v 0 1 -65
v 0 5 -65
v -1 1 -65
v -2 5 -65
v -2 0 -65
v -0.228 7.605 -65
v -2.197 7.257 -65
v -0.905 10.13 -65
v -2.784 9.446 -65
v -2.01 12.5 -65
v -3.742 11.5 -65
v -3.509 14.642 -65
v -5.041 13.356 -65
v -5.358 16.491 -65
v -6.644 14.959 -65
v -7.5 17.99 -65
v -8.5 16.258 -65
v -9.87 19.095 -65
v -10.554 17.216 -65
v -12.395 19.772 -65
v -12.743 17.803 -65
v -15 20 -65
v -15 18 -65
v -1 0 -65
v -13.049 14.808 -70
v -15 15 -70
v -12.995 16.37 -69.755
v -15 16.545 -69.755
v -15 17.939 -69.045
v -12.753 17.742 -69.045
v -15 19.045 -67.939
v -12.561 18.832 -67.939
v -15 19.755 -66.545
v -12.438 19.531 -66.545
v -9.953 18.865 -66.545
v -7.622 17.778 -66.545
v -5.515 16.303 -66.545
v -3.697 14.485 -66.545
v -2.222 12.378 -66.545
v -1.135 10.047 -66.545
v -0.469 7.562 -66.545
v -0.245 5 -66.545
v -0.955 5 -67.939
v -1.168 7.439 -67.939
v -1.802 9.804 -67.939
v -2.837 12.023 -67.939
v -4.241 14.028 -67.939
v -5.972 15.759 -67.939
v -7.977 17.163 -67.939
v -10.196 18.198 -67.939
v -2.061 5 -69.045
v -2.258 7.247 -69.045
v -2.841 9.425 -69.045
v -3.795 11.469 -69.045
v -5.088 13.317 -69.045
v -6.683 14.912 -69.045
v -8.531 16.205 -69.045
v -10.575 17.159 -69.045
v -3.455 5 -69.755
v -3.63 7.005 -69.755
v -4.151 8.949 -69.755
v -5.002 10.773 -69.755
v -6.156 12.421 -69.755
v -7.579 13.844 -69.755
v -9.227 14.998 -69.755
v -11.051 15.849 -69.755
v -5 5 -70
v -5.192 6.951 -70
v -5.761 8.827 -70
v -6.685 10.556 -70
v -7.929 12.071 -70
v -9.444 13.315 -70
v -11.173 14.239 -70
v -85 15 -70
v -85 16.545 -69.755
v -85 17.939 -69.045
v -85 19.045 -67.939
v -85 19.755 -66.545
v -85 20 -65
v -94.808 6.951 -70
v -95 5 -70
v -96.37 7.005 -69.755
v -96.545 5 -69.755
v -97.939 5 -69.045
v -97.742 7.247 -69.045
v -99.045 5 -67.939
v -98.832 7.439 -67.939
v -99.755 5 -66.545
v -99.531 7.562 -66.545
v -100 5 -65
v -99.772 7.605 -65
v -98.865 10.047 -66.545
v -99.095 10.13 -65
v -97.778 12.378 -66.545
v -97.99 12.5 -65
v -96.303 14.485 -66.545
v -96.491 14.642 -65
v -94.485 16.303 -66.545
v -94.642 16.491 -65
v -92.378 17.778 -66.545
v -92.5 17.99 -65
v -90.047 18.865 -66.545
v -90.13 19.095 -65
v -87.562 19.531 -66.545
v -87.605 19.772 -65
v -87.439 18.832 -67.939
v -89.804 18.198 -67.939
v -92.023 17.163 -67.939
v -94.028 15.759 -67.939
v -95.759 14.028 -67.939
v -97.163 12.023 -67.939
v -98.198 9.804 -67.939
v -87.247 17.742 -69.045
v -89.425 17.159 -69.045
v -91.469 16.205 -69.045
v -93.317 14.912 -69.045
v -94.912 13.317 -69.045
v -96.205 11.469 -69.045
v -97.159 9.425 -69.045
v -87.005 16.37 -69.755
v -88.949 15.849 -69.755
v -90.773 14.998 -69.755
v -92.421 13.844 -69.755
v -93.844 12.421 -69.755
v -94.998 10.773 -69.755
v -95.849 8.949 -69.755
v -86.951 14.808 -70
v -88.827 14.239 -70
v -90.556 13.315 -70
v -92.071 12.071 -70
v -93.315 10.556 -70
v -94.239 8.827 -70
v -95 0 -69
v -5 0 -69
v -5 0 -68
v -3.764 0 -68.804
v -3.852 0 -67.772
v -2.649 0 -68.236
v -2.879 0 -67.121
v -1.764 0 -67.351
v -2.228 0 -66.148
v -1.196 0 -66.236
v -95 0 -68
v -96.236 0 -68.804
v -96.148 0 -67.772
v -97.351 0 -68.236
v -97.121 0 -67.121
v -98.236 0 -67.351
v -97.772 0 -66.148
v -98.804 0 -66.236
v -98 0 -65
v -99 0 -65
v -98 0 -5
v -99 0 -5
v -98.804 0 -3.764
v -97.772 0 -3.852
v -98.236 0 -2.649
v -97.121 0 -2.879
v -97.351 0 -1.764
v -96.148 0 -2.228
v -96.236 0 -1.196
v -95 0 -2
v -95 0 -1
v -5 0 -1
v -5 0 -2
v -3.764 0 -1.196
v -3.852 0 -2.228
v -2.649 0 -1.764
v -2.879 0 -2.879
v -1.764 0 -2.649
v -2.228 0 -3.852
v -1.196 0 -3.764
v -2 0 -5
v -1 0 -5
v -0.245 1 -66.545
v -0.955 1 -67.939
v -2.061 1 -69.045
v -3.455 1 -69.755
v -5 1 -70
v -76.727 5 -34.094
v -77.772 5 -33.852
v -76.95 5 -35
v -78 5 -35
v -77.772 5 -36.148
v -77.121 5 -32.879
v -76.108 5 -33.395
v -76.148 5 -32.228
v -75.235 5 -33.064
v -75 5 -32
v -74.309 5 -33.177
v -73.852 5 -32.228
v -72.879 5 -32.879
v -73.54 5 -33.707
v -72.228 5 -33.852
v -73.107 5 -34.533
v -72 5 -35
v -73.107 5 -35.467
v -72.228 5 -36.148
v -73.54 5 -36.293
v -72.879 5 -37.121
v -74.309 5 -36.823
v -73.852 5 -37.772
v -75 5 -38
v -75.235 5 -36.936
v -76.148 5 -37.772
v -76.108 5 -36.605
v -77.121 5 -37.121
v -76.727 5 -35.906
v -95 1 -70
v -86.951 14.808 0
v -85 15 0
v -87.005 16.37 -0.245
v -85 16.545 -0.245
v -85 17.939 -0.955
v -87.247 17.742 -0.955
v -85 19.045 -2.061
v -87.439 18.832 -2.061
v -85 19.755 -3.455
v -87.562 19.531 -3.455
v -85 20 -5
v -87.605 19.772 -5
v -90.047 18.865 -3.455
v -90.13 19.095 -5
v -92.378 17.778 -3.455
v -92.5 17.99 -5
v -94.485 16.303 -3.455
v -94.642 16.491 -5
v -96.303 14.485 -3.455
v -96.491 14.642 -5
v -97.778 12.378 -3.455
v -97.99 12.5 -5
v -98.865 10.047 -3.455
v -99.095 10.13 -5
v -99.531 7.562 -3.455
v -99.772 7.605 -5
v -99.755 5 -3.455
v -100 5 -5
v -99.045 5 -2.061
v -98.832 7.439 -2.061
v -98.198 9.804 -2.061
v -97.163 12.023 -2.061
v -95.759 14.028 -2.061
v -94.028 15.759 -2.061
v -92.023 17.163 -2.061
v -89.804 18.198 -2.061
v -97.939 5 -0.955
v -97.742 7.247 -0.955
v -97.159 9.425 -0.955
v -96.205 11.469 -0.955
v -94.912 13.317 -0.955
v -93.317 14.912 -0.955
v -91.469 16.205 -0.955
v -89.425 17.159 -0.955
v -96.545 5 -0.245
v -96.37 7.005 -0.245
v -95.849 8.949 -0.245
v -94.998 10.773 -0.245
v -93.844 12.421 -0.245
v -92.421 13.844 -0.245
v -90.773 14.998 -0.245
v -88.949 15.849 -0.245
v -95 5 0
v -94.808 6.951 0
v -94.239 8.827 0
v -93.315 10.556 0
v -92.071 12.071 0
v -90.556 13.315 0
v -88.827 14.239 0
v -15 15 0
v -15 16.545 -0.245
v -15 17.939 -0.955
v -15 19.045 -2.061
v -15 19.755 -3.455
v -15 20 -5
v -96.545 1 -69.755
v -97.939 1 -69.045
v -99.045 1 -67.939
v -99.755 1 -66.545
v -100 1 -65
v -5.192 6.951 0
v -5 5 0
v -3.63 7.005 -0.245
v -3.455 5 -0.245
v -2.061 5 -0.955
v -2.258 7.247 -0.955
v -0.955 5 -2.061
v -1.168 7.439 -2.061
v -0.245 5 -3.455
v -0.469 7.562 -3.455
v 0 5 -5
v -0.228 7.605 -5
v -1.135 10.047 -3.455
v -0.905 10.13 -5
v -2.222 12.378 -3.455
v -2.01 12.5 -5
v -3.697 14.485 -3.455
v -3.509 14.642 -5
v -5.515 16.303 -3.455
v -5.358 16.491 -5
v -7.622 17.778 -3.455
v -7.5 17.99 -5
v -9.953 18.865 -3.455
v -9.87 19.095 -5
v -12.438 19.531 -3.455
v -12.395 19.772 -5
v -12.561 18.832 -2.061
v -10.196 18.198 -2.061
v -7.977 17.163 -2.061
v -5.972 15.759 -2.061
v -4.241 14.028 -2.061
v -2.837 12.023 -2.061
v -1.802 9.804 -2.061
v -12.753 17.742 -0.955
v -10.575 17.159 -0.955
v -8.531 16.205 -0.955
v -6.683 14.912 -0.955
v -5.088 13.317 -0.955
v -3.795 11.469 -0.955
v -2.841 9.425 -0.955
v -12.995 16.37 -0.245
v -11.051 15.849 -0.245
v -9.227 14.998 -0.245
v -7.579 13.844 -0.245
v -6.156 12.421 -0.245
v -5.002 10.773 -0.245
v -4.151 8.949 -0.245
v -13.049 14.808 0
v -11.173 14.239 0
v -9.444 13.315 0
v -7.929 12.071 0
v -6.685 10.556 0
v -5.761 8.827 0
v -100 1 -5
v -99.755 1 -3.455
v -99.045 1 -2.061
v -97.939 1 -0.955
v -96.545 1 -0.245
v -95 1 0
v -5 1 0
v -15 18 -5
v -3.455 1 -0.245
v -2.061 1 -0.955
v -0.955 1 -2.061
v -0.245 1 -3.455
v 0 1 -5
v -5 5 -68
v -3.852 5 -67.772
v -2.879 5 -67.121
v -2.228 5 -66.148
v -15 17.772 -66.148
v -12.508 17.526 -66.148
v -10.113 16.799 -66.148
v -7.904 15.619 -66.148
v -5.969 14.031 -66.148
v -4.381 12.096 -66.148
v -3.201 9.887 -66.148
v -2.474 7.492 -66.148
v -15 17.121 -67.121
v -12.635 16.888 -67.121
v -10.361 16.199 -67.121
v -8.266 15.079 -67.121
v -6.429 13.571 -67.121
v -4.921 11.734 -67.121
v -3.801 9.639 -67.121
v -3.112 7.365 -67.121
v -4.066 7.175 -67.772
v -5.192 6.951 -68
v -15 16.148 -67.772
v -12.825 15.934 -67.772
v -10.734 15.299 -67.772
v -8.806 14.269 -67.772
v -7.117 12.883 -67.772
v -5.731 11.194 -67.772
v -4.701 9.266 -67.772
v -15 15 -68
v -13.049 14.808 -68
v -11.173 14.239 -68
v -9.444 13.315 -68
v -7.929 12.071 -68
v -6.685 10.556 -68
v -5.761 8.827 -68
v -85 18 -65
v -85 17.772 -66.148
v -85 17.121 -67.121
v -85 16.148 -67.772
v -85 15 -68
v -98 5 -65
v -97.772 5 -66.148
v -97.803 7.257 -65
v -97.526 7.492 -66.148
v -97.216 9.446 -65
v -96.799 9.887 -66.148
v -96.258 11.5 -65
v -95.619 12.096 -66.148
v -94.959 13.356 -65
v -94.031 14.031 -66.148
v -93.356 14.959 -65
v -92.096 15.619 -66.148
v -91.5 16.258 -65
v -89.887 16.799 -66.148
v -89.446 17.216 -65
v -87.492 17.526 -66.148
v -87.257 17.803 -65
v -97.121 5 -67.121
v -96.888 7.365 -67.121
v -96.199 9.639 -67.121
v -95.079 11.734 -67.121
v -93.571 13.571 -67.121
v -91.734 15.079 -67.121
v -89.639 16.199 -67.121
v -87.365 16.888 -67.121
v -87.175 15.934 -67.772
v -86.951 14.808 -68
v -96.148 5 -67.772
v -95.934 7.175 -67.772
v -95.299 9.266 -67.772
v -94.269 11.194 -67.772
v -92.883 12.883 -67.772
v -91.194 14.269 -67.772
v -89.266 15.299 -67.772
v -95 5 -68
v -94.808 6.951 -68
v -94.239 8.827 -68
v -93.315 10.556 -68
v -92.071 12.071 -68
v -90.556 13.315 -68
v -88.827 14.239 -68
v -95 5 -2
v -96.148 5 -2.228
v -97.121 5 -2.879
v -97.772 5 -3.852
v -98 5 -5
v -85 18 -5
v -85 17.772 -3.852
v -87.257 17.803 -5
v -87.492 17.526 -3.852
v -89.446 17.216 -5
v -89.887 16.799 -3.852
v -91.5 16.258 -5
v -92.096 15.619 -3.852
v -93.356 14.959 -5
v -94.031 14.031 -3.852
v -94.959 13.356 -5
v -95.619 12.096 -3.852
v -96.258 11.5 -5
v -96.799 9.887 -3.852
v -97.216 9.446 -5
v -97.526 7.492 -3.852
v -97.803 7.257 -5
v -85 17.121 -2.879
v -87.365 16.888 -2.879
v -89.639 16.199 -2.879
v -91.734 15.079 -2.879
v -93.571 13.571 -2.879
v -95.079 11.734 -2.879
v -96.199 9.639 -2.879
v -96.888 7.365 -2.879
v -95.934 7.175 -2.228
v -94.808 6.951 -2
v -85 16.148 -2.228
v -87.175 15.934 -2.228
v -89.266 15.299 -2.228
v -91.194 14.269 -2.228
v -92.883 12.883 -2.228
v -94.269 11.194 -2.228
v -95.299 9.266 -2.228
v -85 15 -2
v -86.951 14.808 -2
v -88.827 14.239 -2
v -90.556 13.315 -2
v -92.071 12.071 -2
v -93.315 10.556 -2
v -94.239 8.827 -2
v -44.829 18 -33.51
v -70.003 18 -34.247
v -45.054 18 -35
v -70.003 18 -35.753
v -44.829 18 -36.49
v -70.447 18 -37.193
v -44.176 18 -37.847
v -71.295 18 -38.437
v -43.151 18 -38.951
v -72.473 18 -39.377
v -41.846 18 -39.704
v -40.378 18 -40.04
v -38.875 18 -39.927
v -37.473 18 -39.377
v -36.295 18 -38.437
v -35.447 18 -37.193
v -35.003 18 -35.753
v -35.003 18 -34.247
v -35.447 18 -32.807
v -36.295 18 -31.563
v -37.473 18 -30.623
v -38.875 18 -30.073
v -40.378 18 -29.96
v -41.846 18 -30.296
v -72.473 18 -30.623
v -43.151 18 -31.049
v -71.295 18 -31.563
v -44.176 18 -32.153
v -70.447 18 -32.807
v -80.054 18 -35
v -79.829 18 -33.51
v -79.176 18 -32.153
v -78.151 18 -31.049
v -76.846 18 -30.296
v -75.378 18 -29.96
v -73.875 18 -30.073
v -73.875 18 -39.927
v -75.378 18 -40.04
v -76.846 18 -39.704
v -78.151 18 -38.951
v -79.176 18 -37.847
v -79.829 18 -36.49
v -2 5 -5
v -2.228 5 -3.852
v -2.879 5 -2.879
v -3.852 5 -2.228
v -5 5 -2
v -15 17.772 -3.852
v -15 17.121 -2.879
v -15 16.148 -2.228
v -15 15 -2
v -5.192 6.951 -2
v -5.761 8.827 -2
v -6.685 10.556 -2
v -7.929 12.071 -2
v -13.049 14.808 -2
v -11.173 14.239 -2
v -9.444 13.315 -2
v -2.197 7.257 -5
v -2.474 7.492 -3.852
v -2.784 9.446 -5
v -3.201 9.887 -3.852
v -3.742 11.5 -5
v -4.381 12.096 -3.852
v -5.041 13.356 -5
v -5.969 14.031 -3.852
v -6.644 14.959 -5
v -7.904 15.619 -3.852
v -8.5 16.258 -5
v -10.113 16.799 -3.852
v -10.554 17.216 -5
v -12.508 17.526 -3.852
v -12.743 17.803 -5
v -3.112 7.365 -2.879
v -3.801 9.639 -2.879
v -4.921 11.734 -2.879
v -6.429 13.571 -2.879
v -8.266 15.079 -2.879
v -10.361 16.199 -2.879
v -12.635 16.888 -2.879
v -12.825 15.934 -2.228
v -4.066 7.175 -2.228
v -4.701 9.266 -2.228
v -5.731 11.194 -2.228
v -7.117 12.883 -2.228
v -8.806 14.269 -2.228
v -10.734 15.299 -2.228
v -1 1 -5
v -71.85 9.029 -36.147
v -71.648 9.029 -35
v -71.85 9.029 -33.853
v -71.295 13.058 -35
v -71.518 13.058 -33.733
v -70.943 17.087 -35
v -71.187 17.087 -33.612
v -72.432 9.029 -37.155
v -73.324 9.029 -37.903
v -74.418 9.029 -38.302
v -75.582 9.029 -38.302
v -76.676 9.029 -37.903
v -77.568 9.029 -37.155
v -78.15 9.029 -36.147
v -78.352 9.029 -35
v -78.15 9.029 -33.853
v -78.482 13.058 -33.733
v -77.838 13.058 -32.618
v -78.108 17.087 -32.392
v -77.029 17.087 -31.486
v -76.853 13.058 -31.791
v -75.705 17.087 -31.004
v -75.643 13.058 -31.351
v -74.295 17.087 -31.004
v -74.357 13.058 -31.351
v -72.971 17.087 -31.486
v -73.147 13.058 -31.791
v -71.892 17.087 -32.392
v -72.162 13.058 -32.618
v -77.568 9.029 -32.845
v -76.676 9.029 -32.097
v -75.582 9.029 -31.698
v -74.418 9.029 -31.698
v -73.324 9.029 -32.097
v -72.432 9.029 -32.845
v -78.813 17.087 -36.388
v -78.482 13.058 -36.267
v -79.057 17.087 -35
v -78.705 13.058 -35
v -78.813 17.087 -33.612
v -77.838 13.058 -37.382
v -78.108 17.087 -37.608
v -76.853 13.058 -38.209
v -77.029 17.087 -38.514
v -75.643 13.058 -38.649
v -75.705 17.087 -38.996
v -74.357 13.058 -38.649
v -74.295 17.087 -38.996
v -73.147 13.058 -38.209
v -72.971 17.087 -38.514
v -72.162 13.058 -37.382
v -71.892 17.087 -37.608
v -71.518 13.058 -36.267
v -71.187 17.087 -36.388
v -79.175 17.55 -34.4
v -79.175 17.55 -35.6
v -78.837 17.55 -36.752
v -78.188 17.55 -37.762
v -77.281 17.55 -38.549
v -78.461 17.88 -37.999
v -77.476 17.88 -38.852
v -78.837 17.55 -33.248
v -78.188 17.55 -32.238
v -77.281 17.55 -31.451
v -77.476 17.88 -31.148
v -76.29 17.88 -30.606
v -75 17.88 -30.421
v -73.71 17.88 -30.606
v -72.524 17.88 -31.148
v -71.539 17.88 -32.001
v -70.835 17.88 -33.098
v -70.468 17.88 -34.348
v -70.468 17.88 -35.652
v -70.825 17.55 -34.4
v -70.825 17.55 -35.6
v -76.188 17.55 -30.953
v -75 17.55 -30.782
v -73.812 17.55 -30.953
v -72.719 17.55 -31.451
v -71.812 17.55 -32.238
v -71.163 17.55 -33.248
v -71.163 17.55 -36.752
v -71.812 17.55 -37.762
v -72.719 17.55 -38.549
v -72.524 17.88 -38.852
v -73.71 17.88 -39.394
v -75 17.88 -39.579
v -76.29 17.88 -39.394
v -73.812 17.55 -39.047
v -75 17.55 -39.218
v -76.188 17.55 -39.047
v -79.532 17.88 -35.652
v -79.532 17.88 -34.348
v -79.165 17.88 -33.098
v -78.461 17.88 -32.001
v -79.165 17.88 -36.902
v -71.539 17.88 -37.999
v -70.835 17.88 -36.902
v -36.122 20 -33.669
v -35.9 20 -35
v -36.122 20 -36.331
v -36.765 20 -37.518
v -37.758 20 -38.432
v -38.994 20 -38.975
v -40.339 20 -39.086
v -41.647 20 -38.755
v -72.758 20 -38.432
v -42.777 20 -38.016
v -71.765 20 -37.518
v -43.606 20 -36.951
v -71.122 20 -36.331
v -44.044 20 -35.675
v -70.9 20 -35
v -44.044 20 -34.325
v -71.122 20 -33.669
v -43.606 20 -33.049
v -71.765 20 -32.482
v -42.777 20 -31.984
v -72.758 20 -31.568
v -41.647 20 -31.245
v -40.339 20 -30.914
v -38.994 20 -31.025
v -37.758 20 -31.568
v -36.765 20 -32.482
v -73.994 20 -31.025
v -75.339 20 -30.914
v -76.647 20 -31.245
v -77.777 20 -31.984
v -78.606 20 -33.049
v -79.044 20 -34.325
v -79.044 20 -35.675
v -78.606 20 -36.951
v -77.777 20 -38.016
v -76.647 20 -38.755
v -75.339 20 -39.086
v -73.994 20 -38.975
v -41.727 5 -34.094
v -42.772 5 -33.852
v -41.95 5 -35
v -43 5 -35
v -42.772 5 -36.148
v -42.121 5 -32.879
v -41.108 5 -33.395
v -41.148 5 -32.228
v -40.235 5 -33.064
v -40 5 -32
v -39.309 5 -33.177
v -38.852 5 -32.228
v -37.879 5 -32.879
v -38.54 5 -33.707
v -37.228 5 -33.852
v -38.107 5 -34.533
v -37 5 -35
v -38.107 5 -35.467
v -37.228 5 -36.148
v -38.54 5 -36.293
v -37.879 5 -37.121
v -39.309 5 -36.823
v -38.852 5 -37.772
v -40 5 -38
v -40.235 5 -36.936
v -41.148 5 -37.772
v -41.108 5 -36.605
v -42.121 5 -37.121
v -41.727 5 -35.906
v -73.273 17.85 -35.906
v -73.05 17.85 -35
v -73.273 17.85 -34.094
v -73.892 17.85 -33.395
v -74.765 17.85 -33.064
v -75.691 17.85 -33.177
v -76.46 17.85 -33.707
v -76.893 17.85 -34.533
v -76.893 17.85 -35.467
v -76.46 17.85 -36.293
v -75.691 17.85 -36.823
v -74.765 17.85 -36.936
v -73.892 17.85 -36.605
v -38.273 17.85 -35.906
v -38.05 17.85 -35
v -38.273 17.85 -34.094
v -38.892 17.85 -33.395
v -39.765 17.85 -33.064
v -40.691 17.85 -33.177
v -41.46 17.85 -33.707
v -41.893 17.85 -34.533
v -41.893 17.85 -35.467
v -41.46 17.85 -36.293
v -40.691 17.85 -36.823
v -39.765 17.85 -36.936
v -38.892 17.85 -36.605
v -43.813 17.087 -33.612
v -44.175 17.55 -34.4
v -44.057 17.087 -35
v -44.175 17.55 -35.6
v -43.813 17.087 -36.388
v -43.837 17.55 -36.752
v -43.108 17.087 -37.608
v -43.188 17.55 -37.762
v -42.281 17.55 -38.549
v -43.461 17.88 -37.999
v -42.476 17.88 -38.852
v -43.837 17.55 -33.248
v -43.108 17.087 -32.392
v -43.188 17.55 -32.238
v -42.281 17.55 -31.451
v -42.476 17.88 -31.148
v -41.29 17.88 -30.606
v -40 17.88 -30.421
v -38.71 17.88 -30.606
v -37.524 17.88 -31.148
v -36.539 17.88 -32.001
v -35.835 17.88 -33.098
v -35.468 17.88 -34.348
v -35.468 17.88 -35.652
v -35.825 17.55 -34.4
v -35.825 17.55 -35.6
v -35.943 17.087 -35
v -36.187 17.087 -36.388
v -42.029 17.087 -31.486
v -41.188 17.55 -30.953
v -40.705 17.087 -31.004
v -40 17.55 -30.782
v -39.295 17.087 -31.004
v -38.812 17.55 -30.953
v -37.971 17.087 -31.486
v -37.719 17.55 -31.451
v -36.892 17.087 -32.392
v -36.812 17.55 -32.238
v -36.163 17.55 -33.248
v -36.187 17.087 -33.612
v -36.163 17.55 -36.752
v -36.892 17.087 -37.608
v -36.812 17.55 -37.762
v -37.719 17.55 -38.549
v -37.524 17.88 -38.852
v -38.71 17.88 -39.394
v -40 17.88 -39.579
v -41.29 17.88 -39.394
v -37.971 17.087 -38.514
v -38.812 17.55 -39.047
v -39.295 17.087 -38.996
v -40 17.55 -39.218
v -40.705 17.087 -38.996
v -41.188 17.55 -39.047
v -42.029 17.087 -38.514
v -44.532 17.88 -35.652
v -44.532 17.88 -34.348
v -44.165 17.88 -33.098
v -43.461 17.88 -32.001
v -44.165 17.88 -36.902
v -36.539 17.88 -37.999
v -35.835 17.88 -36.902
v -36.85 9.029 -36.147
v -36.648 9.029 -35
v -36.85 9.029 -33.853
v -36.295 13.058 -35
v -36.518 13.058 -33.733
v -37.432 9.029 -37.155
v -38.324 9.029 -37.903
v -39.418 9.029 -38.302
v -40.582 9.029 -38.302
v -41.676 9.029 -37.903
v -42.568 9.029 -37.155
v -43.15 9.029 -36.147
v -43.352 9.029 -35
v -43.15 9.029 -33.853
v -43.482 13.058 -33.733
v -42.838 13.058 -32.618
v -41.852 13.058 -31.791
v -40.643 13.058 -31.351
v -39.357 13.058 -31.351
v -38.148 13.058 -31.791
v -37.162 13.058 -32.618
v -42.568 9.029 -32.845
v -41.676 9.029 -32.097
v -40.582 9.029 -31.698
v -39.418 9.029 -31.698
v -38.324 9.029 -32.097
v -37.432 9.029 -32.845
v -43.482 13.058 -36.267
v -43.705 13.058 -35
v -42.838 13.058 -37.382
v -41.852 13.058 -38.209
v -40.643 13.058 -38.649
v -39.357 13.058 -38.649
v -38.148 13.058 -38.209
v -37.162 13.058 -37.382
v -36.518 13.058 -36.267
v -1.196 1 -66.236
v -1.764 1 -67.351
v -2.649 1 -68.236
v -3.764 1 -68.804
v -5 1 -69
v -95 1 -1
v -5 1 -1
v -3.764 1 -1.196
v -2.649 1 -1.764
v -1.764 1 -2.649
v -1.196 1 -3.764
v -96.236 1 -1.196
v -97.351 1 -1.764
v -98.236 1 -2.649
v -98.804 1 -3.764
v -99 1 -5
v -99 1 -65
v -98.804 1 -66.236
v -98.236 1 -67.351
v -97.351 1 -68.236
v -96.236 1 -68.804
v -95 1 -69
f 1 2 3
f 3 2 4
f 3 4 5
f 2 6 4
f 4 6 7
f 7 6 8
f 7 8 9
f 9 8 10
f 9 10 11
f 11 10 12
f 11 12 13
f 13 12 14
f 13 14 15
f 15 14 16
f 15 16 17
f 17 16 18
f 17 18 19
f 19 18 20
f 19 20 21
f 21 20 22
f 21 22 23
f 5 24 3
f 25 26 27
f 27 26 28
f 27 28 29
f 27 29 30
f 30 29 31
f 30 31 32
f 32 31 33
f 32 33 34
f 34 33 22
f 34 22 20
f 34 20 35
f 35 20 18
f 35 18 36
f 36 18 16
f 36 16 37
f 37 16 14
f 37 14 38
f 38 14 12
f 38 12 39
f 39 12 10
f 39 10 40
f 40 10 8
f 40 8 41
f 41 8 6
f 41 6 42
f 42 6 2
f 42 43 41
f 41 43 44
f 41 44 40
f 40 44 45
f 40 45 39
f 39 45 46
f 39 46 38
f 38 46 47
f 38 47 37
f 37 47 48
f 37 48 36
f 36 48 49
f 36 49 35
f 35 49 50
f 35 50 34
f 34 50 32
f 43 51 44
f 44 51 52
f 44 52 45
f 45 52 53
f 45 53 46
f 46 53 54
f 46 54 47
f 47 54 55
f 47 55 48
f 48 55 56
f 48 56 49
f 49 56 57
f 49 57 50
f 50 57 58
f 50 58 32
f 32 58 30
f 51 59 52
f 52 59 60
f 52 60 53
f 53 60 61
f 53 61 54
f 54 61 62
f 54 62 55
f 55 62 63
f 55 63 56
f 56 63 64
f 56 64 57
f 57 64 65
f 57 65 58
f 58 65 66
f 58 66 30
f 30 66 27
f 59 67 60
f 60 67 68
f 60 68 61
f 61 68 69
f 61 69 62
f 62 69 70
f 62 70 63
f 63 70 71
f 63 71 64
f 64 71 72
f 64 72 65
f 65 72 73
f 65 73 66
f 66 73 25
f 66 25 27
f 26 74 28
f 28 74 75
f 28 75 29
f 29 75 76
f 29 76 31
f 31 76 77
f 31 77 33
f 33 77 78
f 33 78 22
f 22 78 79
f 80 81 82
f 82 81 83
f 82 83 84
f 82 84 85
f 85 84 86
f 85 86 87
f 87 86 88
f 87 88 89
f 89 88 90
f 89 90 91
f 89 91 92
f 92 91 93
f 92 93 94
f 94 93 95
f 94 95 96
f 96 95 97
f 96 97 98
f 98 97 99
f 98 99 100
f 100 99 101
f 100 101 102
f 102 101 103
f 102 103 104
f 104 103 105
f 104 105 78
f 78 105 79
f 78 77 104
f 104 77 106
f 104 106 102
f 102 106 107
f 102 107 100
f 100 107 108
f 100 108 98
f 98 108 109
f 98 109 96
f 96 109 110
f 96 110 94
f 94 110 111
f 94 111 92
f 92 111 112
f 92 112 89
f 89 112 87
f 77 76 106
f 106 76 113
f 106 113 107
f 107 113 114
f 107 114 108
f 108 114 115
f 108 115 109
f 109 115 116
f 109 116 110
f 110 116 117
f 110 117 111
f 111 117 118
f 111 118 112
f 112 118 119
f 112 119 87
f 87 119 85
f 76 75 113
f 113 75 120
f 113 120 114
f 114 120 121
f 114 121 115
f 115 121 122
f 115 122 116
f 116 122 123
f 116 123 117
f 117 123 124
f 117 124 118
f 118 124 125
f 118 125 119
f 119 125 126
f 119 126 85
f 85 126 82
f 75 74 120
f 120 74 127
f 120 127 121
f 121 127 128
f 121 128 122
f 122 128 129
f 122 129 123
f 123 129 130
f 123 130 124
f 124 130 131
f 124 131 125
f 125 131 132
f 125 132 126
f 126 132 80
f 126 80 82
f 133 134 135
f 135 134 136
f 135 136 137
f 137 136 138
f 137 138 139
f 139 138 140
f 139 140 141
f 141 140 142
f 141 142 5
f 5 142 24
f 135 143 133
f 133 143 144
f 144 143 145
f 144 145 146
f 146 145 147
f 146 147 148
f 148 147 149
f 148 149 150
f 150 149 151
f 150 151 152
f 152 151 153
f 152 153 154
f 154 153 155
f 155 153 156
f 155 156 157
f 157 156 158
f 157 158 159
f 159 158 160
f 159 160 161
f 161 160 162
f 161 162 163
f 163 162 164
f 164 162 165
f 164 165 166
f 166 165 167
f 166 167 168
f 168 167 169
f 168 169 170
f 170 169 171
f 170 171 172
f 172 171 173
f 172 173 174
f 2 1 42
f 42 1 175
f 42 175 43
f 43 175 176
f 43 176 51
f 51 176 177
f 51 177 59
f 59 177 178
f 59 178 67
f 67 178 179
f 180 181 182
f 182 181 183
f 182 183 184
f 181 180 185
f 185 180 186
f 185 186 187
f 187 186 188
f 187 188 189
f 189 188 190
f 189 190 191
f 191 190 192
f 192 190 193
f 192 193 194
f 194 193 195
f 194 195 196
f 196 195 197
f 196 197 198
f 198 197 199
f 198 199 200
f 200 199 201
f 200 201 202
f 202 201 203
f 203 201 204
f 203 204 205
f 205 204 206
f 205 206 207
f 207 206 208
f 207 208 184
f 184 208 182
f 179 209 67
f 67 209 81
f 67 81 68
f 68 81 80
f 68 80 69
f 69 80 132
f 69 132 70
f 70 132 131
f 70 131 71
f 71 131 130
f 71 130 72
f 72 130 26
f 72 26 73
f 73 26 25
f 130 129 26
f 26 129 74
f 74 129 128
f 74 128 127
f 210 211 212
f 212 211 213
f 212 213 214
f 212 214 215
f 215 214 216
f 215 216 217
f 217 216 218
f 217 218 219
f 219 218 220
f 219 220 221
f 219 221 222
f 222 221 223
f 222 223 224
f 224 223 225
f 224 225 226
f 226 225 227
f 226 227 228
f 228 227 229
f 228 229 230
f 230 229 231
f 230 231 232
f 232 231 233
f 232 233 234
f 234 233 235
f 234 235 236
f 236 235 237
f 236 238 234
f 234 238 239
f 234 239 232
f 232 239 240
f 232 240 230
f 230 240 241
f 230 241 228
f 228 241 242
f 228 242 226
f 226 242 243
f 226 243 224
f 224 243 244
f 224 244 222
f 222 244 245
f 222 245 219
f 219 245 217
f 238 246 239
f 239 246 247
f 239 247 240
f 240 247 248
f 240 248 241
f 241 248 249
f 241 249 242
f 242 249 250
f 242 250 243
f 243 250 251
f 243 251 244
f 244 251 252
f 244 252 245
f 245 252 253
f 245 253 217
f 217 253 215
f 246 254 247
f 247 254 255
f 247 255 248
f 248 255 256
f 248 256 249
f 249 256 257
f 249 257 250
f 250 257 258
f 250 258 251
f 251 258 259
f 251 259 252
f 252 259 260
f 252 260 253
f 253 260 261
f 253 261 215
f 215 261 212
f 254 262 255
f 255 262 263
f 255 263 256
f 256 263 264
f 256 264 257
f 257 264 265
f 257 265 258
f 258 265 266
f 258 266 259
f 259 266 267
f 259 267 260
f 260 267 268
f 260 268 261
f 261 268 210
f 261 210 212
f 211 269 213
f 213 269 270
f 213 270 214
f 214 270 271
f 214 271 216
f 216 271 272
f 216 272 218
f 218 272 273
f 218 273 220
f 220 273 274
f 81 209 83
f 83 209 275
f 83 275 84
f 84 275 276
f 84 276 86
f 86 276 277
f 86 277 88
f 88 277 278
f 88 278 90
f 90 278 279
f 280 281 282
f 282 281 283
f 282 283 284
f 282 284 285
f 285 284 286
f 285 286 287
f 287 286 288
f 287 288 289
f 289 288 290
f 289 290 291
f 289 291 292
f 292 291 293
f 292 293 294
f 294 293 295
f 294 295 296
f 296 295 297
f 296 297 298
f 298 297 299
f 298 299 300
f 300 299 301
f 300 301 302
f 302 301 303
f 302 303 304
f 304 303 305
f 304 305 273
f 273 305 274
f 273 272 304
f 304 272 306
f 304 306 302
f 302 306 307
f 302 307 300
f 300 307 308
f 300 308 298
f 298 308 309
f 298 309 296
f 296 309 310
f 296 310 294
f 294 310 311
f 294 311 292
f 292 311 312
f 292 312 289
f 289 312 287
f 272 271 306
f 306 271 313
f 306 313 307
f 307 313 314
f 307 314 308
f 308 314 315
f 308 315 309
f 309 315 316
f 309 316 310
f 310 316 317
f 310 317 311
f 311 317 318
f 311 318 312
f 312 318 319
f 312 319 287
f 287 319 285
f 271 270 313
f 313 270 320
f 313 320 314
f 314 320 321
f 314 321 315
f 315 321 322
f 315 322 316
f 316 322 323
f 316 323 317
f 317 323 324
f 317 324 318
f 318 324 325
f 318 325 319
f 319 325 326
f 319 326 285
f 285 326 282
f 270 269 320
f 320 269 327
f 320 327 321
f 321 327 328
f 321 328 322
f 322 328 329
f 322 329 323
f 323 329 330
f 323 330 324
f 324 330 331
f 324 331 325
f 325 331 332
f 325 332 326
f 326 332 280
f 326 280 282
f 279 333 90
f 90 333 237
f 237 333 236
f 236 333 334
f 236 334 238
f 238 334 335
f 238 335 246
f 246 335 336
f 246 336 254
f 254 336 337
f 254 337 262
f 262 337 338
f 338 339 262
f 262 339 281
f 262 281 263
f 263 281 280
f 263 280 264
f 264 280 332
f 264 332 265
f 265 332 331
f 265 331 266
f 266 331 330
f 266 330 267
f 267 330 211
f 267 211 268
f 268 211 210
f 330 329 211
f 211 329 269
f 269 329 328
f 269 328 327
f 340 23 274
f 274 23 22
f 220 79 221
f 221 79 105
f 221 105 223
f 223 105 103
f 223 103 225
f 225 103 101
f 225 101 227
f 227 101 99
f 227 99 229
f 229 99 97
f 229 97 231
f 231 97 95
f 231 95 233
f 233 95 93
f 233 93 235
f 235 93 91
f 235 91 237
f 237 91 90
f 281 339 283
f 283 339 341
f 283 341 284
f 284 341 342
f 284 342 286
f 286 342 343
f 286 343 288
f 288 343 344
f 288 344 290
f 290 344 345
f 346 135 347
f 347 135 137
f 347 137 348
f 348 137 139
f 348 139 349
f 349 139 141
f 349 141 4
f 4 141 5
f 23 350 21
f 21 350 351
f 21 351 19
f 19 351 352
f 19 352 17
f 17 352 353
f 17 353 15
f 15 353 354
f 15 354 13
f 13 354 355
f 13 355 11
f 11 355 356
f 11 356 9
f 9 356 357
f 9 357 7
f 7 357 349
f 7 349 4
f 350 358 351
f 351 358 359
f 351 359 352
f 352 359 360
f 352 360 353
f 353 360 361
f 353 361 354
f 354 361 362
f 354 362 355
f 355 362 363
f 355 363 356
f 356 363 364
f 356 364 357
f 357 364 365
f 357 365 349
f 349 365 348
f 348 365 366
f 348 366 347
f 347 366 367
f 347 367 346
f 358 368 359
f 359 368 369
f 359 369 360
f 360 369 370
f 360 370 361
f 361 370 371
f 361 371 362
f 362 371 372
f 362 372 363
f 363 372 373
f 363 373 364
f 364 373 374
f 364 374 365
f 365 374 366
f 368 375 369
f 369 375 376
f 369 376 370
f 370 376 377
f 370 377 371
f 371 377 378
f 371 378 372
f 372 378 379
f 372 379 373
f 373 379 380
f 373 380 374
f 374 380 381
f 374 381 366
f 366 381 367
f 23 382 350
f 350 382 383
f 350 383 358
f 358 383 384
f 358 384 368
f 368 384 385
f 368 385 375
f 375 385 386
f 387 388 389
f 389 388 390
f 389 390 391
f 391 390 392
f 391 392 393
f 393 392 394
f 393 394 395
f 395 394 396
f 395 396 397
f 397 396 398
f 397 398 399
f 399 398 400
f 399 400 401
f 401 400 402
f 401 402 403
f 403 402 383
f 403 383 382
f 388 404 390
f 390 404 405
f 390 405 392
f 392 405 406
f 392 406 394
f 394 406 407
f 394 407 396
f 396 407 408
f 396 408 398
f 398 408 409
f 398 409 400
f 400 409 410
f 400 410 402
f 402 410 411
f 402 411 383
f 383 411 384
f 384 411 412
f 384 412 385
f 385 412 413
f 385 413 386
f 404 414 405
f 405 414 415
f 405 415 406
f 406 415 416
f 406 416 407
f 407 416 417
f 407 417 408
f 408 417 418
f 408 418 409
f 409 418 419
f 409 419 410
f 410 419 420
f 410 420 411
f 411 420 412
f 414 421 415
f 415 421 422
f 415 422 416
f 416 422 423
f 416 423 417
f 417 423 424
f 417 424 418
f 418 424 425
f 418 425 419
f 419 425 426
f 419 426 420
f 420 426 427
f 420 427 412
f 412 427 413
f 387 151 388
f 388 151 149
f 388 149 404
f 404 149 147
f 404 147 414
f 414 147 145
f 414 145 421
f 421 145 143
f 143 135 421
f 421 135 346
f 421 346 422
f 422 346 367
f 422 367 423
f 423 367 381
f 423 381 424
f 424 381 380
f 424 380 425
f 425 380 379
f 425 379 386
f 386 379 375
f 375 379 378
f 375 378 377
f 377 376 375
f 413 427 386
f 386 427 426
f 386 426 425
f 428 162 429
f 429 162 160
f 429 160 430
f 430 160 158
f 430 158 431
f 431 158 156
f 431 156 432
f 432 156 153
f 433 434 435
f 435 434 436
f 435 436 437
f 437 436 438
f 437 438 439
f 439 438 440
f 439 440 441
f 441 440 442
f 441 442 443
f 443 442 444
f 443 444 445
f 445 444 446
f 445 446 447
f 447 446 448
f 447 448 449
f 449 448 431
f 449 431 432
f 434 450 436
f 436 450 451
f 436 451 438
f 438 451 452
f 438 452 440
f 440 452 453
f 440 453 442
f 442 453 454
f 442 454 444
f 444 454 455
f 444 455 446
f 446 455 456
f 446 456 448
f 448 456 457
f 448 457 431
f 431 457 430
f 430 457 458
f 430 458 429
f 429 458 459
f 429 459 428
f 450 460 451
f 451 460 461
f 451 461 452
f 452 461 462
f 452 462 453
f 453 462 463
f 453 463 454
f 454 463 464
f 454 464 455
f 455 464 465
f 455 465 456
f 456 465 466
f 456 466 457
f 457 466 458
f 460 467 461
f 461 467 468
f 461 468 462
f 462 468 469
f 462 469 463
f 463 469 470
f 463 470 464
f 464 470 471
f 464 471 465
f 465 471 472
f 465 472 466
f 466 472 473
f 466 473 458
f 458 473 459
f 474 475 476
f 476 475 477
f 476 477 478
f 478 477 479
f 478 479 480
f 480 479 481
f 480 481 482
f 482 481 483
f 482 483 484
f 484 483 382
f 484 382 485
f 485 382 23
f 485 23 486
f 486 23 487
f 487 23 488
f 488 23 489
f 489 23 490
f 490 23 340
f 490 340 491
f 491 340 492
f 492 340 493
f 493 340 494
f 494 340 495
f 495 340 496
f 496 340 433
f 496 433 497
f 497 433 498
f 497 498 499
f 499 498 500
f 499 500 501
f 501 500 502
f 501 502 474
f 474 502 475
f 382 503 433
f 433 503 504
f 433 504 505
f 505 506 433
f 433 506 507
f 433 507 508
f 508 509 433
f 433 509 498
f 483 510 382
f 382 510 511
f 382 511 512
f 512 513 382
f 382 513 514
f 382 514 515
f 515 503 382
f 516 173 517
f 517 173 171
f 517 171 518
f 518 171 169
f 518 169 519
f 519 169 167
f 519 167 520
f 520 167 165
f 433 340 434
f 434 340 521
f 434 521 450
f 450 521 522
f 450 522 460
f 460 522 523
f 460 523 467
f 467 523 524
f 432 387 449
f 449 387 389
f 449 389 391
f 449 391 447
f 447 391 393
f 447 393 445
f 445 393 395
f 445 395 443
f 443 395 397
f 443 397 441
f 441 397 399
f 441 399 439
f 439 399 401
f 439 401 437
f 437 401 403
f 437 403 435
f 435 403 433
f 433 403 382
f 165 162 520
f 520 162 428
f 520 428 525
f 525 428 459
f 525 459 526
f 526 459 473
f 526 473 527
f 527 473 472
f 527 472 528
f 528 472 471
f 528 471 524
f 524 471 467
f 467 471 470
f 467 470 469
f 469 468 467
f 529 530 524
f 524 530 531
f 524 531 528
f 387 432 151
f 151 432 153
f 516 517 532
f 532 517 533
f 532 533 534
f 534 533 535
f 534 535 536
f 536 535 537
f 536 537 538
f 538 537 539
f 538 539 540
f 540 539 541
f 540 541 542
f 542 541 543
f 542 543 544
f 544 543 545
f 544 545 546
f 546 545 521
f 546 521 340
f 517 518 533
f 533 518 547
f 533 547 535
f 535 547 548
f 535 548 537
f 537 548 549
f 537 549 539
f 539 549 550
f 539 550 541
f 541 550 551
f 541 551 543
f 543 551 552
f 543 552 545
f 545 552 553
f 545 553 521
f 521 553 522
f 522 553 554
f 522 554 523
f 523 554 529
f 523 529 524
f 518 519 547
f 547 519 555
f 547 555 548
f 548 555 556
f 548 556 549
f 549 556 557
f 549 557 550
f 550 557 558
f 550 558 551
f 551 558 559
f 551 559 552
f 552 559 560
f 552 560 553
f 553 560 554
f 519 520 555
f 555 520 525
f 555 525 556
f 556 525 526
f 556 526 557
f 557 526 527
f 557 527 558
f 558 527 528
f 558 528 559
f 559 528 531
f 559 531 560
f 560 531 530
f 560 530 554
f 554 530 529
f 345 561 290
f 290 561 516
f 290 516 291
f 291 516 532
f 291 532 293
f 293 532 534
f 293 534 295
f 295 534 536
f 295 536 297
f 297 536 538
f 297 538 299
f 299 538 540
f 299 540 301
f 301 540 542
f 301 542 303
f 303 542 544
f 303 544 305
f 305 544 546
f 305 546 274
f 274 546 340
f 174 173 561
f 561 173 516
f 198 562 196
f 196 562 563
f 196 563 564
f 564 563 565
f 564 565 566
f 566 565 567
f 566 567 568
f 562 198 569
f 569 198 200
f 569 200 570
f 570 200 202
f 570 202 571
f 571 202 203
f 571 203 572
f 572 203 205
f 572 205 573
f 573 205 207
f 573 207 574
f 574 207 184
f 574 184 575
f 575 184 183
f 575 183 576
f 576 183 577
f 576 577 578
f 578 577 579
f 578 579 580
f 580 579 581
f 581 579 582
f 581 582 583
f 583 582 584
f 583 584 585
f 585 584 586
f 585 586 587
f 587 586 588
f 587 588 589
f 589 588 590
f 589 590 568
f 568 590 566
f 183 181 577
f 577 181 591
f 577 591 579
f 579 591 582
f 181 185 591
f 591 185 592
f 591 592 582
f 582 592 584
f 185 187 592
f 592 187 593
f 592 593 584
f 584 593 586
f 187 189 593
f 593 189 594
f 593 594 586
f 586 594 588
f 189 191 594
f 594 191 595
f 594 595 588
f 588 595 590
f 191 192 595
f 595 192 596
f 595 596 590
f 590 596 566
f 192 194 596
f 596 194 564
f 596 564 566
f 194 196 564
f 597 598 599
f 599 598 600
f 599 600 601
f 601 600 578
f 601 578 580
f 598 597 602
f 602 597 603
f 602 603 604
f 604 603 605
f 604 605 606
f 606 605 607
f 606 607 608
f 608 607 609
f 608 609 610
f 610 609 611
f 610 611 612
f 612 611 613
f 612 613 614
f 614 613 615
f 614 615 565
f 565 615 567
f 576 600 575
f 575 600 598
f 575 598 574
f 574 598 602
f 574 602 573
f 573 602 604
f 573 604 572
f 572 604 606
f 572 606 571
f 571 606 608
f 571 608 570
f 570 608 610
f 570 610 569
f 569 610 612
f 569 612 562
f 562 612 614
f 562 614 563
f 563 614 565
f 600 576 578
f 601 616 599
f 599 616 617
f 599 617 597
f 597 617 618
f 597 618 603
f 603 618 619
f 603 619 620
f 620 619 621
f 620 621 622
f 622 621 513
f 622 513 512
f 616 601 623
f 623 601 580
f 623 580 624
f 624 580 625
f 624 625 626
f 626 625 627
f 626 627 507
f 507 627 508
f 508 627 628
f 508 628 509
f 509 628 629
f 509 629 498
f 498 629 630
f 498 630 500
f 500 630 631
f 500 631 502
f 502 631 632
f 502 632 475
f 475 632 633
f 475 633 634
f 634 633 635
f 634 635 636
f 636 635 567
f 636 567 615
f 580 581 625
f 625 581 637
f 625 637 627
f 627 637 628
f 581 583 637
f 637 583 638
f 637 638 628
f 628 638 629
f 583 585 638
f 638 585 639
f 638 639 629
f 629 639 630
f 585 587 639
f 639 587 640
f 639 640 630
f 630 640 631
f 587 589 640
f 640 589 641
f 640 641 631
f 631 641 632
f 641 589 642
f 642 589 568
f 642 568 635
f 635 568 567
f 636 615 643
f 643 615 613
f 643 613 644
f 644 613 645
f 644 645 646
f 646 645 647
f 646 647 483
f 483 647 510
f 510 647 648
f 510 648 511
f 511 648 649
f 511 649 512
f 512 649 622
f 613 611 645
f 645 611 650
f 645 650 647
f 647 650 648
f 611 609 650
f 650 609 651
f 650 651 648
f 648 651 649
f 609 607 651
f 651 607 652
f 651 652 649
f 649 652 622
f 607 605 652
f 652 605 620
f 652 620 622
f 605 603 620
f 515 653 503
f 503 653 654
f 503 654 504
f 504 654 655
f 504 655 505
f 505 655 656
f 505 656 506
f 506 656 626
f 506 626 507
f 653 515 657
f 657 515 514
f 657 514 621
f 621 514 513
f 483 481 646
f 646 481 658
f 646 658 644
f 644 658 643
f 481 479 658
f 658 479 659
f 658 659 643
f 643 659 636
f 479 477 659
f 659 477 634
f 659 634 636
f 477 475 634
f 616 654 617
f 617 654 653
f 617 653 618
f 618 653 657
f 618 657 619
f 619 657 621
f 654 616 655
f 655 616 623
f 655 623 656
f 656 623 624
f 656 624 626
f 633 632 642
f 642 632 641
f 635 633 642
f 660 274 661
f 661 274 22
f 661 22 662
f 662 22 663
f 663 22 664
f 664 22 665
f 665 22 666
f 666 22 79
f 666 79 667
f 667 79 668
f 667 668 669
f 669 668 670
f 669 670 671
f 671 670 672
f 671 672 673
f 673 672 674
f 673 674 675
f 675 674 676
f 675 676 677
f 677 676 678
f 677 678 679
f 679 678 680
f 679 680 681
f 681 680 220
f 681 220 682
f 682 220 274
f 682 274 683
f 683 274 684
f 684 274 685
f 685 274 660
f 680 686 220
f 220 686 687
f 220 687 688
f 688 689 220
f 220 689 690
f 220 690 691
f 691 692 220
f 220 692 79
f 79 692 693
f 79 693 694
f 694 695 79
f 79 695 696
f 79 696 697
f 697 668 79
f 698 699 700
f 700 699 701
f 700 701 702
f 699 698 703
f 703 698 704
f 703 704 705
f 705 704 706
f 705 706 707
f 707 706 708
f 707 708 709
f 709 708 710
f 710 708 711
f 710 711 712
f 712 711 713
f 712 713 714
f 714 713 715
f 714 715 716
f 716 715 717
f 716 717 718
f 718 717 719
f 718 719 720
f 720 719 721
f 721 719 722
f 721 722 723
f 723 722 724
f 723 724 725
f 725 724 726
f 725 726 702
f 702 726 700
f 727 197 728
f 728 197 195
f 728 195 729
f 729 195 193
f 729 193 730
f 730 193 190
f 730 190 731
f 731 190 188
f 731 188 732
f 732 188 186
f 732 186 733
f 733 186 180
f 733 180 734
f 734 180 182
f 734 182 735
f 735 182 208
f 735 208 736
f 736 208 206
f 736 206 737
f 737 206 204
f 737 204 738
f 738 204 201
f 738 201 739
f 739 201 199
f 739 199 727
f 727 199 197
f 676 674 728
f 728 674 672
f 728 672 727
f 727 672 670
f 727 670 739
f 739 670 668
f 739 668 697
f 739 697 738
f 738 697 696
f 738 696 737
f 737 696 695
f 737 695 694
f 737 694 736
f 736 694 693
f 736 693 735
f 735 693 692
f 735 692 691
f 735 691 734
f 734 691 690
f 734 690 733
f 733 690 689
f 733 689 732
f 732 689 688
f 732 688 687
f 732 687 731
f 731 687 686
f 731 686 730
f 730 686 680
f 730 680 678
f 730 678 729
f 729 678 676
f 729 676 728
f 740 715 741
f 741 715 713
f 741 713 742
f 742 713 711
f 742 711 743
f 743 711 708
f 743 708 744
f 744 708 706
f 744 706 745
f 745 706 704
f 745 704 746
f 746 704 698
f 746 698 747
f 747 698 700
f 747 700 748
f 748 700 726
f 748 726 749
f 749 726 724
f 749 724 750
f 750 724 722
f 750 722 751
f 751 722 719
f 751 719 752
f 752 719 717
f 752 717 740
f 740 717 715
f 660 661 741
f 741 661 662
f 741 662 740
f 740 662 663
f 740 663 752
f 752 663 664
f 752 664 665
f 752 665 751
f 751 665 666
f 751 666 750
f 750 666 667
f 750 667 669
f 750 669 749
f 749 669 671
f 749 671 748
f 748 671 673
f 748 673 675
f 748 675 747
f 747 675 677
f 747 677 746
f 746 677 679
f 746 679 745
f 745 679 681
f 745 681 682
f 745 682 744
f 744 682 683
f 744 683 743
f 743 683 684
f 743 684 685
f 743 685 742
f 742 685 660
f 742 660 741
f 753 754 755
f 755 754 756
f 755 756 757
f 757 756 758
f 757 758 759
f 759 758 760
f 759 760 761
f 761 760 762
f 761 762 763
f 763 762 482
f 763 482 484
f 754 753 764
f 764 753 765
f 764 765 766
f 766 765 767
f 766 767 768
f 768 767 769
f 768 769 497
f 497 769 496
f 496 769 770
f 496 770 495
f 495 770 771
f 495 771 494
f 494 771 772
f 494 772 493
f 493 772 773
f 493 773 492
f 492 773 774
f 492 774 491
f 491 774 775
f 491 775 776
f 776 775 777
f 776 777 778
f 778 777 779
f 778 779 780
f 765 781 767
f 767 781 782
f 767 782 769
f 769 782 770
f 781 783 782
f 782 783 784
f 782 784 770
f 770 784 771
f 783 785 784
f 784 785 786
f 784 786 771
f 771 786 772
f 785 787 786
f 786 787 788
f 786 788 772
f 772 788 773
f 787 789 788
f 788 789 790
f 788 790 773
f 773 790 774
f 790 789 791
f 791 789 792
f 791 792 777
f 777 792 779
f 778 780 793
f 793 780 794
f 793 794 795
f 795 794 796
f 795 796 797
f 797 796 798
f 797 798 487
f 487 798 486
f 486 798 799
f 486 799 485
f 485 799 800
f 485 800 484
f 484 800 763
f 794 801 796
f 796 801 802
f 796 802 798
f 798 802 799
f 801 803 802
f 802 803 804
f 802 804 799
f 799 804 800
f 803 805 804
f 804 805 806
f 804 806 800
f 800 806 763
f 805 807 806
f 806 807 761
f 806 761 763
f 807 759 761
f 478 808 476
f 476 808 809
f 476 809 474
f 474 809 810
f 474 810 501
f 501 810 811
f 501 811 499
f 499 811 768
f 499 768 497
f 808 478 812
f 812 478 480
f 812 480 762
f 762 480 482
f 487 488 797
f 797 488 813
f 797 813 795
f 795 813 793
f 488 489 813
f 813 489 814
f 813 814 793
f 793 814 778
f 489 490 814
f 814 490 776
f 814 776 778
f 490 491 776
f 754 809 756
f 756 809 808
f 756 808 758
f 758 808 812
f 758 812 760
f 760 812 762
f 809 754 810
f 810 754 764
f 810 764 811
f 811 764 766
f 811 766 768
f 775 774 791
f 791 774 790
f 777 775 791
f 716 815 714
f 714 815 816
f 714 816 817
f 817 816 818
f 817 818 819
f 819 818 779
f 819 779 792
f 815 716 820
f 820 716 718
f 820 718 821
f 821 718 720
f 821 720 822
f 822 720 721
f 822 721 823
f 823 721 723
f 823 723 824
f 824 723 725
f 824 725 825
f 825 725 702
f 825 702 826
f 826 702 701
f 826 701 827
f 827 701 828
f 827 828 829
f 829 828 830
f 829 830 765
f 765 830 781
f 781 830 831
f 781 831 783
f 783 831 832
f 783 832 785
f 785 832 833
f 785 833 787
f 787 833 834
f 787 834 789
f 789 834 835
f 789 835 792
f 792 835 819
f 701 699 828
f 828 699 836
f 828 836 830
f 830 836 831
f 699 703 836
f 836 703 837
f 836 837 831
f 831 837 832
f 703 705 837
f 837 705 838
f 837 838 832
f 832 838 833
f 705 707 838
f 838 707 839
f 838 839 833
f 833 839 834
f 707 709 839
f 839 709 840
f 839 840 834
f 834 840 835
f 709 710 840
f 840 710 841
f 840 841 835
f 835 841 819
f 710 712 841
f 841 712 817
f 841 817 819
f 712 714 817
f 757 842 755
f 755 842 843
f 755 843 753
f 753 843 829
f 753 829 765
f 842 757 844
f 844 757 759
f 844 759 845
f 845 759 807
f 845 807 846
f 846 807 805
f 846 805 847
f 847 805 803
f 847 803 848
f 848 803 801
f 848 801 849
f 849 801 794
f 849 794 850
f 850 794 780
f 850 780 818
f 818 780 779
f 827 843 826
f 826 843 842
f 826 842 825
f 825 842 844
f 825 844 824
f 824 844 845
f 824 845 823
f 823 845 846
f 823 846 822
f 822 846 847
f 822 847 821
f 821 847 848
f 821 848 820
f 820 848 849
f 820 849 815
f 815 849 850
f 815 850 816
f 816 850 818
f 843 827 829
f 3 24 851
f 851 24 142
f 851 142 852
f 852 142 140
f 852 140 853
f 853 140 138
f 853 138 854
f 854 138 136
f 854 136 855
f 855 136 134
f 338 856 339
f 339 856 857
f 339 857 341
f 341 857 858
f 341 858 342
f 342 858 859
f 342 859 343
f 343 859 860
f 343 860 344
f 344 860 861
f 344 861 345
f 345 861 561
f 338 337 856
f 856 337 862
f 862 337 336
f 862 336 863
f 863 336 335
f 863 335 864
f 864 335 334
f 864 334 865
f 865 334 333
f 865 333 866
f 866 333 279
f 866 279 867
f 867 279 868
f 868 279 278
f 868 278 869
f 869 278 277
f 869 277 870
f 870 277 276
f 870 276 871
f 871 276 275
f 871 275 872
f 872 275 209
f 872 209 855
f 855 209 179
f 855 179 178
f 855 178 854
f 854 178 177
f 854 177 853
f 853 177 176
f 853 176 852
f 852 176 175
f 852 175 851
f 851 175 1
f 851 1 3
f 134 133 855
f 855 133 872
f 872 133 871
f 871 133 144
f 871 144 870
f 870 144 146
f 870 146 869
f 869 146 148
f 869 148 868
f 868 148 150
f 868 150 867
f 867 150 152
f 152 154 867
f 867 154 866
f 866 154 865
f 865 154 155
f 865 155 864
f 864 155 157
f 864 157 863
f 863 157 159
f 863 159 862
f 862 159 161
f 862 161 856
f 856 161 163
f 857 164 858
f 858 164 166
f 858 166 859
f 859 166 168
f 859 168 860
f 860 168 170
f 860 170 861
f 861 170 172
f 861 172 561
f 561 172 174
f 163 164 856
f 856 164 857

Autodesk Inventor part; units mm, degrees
ref_plane "YZ Plane" through (0, 0, 0) normal (1, 0, 0) x (0, 1, 0)
ref_plane "XZ Plane" through (0, 0, 0) normal (0, 1, 0) x (-1, 0, 0)
sketch "Sketch1" plane through (0, 0, 0) normal (0, 1, 0) x (-1, 0, 0)
  line L0 (0, 0) -> (100, 0)
  line L1 (100, 0) -> (100, -70)
  line L2 (100, -70) -> (0, -70)
  line L3 (0, -70) -> (0, 0)
  dimension "d0" = 100
  dimension "d1" = 70
extrude "Extrusion1" add sketch "Sketch1" along normal blind 20
fillet "Fillet1" radius 15 2 edges at (-100, 20, -35) (0, 20, -35)
fillet "Fillet2" radius 5 10 edges at (-4.3934, 15.6066, 0) (0, 2.5, 0) (-95.6066, 15.6066, 0) (-100, 2.5, 0) (-50, 20, 0) (-95.6066, 15.6066, -70) (-100, 2.5, -70) (-4.3934, 15.6066, -70) (0, 2.5, -70) (-50, 20, -70)
shell "Shell1" thickness 2 removed faces 3 at (-0.0419, 6.121, -45) at (0, 1.6667, -25) at (-65, 0, -46.6667)
ref_plane "Work Plane1" through (0, 5, 0) normal (0, 1, 0) x (1, 0, 0)
sketch "Sketch2" plane through (0, 5, 0) normal (0, 1, 0) x (1, 0, 0)
  line L0 (-85, 65) -> (-15, 65) construction
  line L1 (-15, 65) -> (-15, 5) construction
  line L2 (-15, 5) -> (-85, 5) construction
  line L3 (-85, 5) -> (-85, 65) construction
  line L4 (-85, 5) -> (-85, 65) construction
  line L5 (-85, 35) -> (-15, 35) construction
  line L6 (-85, 35) -> (-75, 35) construction
  line L7 (-75, 35) -> (-75, 65) construction
  line L8 (-100, 65) -> (-100, 5) construction
  line L9 (-98, 65) -> (-98, 5) construction
  line L10 (-5, 70) -> (-95, 70) construction
  line L11 (-5, 68) -> (-95, 68) construction
  line L12 (-95, 2) -> (-5, 2) construction
  line L13 (-95, 0) -> (-5, 0) construction
  line L14 (-40, 35) -> (-40, 65) construction
  circle A0 centre (-75, 35) radius 3
  circle A1 centre (-40, 35) radius 3
  point P0 (0, 0)
  dimension "d9" = 25
  dimension "d10" = 35
  dimension "d11" = 6
  dimension "d12" = 6
extrude "Extrusion2" add sketch "Sketch2" along normal up to surface (13 mm away) draft 5
sketch "Sketch3" plane through (0, 20, 0) normal (0, 1, 0) x (1, 0, 0)
  circle A0 centre (-75, 35) radius 3 construction
  circle A1 centre (-75, 35) radius 4.1374 construction
  circle A2 centre (-40, 35) radius 3 construction
  circle A3 centre (-40, 35) radius 4.1374 construction
  line L0 (-85, 65) -> (-15, 65) construction
  line L1 (-85, 5) -> (-85, 65) construction
  line L2 (-15, 5) -> (-85, 5) construction
  line L3 (-15, 65) -> (-15, 5) construction
  point P0 (0, 0)
hole "Hole1" at (-75, 20, -35) direction (0, -1, 0) diameter 3.9 depth 15 countersink diameter 8.2 countersink angle 90
hole "Hole2" at (-40, 20, -35) direction (0, -1, 0) diameter 3.9 depth 15 countersink diameter 8.2 countersink angle 90
fillet "Fillet3" radius 1 2 edges at (-44.1374, 18, -35) (-79.1374, 18, -35)
sketch "Sketch4" plane through (0, 0, 0) normal (0, -1, 0) x (1, 0, 0)
  arc A0 (0, -5) -> (-5, 0) centre (-5, -5) ccw projected
  line L0 (-95, 0) -> (-5, 0) projected
  arc A1 (-95, 0) -> (-100, -5) centre (-95, -5) ccw projected
  line L1 (-100, -65) -> (-100, -5) projected
  arc A2 (-100, -65) -> (-95, -70) centre (-95, -65) ccw projected
  line L2 (-5, -70) -> (-95, -70) projected
  arc A3 (-5, -70) -> (0, -65) centre (-5, -65) ccw projected
  arc A4 (-1, -5) -> (-5, -1) centre (-5, -5) ccw
  line L3 (-5, -1) -> (-95, -1)
  arc A5 (-95, -1) -> (-99, -5) centre (-95, -5) ccw
  line L4 (-99, -5) -> (-99, -65)
  arc A6 (-99, -65) -> (-95, -69) centre (-95, -65) ccw
  line L5 (-95, -69) -> (-5, -69)
  arc A7 (-5, -69) -> (-1, -65) centre (-5, -65) ccw
  line L6 (-2, -5) -> (0, -5) projected
  line L7 (-1, -5) -> (0, -5)
  line L8 (0, -65) -> (-2, -65) projected
  line L9 (-1, -65) -> (0, -65)
  point P0 (0, 0)
  dimension "d30" = 1
extrude "Extrusion3" cut sketch "Sketch4" against normal blind 1
properties part number "A1.1"
